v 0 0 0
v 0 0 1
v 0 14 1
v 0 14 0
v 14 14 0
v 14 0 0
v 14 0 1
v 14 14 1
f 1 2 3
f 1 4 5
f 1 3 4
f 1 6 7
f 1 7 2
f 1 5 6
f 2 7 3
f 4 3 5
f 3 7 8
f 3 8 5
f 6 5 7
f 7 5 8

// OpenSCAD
/* Warning, this is a very basic generator with a lot of approximation 
input data : [TQFP, 4NB, 14x14x1mm, 100, , A, C04-21530A]
generated by com.zoubworld.electronics.cad.model3d.Basic
Date : Sun Feb 15 10:50:49 CET 2026
*/

//body
color("black")
translate([0,0,0])
cube([14.0,14.0,1.0], center=false);
